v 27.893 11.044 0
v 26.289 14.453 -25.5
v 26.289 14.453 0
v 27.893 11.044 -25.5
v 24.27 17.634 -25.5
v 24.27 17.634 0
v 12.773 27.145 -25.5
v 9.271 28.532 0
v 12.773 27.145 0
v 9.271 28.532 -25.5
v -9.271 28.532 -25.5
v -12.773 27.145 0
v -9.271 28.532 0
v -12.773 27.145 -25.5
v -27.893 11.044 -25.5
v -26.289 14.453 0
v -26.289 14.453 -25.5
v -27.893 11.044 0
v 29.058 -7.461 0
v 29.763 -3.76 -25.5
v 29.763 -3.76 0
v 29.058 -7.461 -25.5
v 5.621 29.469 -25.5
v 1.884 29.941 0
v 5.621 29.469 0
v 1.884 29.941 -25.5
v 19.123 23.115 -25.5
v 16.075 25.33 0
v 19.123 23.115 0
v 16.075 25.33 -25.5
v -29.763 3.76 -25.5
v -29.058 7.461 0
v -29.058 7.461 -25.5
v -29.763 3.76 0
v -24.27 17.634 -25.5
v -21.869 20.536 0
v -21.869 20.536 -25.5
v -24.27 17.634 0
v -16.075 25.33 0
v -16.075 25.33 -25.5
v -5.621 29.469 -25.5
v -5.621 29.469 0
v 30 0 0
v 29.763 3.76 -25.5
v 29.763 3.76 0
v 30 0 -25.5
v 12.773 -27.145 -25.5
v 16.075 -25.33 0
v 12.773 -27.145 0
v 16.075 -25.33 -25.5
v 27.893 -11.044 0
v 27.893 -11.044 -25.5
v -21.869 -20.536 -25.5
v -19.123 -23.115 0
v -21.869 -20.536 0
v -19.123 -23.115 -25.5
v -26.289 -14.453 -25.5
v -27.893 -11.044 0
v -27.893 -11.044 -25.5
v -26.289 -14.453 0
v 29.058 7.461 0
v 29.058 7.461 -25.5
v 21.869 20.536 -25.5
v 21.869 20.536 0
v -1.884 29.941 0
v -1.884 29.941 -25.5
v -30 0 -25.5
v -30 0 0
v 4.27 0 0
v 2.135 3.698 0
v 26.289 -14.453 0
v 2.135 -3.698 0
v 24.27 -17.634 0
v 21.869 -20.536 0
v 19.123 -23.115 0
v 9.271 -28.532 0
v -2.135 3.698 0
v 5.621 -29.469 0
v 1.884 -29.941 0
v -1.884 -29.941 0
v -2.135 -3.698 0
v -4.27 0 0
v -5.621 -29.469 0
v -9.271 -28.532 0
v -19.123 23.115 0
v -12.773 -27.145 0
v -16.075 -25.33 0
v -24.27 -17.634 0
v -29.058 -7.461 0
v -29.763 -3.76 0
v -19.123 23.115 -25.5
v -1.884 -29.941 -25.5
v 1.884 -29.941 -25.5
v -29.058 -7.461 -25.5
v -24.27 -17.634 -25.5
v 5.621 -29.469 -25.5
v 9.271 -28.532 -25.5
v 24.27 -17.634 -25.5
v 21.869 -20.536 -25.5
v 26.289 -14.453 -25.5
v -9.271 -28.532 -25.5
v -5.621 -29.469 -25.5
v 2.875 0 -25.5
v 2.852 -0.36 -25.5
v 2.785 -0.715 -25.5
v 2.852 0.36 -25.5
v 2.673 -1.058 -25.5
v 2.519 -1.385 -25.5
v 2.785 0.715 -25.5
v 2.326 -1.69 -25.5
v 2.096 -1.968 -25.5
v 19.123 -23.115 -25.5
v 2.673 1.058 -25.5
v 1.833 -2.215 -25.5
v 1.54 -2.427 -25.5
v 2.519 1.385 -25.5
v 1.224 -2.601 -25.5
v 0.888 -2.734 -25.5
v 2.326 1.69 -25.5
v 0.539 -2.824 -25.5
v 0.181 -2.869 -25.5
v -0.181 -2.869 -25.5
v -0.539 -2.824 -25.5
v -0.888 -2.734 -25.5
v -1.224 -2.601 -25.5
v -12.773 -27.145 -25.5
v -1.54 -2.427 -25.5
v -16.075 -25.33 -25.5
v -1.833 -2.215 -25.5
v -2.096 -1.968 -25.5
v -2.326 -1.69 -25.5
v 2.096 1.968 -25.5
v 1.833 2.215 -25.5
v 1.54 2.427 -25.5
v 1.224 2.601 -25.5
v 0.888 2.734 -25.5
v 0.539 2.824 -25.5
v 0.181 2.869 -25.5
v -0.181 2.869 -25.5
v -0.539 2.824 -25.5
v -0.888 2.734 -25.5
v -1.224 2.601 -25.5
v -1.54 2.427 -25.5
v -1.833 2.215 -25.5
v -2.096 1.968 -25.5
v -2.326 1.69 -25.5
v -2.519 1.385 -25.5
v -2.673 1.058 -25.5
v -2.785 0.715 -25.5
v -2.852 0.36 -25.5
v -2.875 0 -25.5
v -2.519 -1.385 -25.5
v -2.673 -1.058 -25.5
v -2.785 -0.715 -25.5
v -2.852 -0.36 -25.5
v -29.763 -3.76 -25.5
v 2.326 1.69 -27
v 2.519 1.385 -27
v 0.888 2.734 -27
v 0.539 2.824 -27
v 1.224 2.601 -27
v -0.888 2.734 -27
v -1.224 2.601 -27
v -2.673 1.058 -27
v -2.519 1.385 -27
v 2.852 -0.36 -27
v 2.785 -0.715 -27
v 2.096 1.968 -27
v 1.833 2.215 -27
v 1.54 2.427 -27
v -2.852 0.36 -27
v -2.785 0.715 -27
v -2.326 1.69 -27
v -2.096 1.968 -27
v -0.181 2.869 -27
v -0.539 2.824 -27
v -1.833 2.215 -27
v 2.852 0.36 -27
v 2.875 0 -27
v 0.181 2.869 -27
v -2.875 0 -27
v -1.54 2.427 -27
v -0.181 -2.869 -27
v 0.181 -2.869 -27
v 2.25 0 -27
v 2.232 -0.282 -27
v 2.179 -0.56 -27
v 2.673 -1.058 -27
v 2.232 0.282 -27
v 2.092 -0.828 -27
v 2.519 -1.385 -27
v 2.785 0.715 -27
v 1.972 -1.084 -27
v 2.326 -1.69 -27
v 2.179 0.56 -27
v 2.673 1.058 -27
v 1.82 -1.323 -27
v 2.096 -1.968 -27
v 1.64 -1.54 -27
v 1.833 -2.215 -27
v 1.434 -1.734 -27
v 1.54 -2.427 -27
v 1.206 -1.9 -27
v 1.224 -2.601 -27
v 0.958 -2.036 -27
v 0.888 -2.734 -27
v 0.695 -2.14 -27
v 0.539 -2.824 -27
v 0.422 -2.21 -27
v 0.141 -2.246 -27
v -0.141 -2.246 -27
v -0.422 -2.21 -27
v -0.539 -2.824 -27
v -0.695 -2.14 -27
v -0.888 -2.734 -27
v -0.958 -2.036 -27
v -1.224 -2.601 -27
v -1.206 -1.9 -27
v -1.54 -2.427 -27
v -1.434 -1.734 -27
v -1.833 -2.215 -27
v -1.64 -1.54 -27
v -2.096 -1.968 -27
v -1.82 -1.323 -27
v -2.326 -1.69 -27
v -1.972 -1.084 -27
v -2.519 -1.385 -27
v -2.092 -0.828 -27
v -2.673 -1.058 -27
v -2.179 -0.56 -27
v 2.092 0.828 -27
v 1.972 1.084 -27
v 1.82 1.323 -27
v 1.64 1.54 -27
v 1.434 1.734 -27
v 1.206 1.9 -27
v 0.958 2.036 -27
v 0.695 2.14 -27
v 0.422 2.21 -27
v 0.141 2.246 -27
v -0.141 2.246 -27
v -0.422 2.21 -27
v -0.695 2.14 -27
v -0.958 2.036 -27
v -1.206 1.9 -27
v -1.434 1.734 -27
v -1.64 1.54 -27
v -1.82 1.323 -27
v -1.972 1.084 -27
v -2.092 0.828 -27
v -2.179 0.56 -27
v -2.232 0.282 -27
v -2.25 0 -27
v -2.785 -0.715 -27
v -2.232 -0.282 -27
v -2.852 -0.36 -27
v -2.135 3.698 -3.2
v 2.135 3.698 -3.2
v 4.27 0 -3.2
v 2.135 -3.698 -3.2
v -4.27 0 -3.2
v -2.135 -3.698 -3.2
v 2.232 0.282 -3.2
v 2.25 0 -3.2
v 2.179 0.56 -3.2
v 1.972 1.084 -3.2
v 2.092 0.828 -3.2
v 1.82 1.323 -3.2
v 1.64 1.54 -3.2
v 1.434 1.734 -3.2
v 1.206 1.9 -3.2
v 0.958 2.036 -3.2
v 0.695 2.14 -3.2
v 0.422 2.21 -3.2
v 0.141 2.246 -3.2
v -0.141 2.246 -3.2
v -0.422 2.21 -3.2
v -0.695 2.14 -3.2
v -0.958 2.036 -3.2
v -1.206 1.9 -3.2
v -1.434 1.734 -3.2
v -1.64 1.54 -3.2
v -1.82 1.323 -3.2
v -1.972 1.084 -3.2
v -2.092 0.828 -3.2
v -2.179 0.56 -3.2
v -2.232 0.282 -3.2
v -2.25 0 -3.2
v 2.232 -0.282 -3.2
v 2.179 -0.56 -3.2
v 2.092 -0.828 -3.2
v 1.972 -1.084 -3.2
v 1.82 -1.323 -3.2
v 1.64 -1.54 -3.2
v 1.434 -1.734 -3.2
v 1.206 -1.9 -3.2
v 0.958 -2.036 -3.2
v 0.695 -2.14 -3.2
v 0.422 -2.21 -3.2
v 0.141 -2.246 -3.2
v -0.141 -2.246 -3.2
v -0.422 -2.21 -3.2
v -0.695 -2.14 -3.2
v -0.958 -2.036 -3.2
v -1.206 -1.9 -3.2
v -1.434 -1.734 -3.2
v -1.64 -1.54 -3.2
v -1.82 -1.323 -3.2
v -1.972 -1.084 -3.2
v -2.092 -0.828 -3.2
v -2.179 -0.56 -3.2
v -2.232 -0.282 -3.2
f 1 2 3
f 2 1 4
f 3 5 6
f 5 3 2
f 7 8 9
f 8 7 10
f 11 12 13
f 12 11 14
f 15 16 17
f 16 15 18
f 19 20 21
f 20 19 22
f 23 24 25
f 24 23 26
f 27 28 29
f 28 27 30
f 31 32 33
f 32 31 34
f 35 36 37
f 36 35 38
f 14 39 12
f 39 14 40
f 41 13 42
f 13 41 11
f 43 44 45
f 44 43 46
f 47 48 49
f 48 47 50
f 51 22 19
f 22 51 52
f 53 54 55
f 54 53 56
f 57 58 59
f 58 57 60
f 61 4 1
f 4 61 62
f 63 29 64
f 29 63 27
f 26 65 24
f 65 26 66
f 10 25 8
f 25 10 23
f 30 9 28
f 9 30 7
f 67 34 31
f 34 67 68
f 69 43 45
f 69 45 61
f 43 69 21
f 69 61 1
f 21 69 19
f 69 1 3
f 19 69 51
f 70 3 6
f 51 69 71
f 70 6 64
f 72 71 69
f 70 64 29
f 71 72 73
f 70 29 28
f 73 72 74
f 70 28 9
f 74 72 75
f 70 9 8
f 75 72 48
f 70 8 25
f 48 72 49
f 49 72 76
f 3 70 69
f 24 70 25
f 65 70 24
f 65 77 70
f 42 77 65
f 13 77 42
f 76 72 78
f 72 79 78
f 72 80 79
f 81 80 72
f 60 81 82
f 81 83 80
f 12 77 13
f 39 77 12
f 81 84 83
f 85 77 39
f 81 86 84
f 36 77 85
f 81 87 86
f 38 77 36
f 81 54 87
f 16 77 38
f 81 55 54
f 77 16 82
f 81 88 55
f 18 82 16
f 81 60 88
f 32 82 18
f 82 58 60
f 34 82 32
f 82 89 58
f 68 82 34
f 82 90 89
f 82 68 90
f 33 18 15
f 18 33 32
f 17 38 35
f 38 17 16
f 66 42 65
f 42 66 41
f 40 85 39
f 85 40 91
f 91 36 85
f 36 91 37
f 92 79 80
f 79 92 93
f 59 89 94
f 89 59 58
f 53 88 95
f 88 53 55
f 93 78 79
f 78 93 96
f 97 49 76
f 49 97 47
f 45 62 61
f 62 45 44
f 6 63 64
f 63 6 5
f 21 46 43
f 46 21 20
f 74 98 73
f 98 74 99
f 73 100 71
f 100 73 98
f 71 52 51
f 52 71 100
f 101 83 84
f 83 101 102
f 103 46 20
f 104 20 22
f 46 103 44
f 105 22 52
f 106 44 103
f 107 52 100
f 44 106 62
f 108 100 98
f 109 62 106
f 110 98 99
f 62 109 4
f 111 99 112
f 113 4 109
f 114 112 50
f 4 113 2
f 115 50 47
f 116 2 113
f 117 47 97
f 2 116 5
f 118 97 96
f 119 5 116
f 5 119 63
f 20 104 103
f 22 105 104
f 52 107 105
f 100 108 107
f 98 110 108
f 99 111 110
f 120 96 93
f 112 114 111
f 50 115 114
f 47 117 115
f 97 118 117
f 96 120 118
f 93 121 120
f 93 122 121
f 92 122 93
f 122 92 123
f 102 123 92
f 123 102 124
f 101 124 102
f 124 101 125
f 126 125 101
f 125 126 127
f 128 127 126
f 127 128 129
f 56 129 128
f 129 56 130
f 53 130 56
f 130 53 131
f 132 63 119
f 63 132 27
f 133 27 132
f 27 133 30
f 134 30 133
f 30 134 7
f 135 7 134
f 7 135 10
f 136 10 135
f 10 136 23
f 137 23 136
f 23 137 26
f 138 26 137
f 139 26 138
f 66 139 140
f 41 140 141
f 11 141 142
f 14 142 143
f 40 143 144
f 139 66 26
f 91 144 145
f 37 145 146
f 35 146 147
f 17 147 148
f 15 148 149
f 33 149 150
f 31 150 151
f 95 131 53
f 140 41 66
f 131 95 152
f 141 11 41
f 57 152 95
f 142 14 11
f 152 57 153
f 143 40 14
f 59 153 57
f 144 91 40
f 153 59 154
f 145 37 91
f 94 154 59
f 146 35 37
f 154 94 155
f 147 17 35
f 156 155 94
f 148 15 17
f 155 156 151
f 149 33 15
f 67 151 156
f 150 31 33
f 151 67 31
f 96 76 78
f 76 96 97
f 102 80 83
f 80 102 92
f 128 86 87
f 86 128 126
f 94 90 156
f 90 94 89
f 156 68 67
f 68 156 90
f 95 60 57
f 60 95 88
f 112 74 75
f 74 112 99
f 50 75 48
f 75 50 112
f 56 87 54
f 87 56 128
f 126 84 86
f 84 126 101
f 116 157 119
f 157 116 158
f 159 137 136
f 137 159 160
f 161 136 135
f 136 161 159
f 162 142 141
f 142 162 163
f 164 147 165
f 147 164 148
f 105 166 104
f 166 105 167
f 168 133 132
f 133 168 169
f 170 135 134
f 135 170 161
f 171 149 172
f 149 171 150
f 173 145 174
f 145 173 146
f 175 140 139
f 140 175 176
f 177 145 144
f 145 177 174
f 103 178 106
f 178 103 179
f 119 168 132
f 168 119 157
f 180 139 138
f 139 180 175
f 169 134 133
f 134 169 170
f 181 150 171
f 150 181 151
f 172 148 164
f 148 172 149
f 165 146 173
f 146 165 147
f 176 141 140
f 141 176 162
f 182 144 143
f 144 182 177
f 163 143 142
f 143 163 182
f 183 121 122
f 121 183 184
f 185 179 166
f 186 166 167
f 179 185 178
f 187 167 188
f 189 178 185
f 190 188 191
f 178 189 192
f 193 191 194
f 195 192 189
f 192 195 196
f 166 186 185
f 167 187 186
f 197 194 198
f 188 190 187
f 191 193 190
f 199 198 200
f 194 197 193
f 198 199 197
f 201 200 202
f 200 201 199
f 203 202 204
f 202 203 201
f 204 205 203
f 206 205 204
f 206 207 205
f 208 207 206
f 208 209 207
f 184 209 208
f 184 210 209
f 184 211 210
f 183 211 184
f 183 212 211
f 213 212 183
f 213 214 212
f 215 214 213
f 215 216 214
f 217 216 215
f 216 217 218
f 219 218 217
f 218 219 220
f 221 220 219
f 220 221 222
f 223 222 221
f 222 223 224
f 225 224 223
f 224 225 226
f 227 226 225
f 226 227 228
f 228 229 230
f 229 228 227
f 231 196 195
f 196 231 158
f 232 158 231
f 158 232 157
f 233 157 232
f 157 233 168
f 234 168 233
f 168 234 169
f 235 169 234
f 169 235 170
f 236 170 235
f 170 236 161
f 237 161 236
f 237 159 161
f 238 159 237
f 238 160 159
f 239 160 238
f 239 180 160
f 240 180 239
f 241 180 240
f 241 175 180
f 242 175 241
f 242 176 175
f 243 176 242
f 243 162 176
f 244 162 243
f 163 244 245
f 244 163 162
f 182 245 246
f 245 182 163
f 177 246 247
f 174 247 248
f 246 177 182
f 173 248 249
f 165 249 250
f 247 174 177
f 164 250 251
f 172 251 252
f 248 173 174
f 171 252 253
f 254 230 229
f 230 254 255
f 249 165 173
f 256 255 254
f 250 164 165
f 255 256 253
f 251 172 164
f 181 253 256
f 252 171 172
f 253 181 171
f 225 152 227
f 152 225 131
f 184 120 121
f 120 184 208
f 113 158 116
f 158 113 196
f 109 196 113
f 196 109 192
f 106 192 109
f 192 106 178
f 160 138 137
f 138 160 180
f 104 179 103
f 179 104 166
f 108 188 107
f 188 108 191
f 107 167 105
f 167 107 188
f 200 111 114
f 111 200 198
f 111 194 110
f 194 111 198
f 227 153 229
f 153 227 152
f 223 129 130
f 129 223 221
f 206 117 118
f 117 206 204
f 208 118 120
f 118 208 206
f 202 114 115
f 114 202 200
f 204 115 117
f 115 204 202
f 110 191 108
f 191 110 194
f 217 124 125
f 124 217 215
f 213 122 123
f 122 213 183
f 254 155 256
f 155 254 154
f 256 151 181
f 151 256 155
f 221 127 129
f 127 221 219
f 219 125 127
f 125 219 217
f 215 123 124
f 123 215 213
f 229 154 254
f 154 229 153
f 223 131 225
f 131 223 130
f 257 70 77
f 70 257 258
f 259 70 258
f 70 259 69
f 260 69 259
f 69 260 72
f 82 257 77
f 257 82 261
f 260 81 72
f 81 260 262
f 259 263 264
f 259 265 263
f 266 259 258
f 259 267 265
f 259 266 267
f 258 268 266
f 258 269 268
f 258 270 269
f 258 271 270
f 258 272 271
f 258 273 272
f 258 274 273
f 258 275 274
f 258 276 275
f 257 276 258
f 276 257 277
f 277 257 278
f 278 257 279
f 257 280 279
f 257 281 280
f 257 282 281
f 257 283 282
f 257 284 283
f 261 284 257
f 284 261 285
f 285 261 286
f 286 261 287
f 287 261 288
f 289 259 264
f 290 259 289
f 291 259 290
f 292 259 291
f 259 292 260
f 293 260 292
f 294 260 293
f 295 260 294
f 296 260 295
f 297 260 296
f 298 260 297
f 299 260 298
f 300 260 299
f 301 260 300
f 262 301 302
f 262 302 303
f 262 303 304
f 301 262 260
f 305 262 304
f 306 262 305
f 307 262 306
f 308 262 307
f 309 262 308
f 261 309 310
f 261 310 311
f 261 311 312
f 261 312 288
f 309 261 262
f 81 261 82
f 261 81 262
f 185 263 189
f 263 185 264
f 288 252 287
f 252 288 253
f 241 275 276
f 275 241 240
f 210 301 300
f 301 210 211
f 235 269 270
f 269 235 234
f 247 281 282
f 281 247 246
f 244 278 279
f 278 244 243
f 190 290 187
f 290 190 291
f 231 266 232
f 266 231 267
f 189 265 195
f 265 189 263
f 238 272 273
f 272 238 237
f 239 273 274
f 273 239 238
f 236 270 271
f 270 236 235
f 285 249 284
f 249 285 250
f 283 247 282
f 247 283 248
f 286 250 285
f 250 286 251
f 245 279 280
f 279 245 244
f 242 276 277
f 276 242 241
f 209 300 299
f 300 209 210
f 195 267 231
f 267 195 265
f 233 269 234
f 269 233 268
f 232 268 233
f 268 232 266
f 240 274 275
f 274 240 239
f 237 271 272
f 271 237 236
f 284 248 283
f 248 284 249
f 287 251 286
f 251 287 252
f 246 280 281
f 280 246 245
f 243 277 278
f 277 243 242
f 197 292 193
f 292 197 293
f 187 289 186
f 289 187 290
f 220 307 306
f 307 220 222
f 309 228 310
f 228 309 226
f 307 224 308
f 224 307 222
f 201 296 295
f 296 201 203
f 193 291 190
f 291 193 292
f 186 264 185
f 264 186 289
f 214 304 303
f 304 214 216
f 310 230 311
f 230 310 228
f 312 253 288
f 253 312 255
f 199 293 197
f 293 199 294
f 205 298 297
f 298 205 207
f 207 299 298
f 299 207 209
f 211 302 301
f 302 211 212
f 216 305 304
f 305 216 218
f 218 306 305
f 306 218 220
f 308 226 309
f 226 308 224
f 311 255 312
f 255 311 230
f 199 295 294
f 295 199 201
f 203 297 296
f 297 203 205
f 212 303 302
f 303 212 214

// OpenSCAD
$fn = 50;


difference() {
	union() {
		translate(v = [0, 0, -25.5000000000]) {
			cylinder(h = 25.5000000000, r = 30.0000000000);
		}
		#translate(v = [0, 0, -27.0000000000]) {
			cylinder(h = 27, r = 2.8750000000);
		}
	}
	union() {
		translate(v = [0, 0, 0]) {
			rotate(a = [0, 0, 0]) {
				difference() {
					union() {
						translate(v = [0, 0, -3.2000000000]) {
							linear_extrude(height = 3.2000000000) {
								polygon(points = [[4.2698000000, 0.0000000000], [2.1349000000, 3.6977552691], [-2.1349000000, 3.6977552691], [-4.2698000000, 0.0000000000], [-2.1349000000, -3.6977552691], [2.1349000000, -3.6977552691]]);
							}
						}
					}
					union();
				}
			}
		}
		#translate(v = [0, 0, -100.0000000000]) {
			cylinder(h = 200, r = 2.2500000000);
		}
	}
}
